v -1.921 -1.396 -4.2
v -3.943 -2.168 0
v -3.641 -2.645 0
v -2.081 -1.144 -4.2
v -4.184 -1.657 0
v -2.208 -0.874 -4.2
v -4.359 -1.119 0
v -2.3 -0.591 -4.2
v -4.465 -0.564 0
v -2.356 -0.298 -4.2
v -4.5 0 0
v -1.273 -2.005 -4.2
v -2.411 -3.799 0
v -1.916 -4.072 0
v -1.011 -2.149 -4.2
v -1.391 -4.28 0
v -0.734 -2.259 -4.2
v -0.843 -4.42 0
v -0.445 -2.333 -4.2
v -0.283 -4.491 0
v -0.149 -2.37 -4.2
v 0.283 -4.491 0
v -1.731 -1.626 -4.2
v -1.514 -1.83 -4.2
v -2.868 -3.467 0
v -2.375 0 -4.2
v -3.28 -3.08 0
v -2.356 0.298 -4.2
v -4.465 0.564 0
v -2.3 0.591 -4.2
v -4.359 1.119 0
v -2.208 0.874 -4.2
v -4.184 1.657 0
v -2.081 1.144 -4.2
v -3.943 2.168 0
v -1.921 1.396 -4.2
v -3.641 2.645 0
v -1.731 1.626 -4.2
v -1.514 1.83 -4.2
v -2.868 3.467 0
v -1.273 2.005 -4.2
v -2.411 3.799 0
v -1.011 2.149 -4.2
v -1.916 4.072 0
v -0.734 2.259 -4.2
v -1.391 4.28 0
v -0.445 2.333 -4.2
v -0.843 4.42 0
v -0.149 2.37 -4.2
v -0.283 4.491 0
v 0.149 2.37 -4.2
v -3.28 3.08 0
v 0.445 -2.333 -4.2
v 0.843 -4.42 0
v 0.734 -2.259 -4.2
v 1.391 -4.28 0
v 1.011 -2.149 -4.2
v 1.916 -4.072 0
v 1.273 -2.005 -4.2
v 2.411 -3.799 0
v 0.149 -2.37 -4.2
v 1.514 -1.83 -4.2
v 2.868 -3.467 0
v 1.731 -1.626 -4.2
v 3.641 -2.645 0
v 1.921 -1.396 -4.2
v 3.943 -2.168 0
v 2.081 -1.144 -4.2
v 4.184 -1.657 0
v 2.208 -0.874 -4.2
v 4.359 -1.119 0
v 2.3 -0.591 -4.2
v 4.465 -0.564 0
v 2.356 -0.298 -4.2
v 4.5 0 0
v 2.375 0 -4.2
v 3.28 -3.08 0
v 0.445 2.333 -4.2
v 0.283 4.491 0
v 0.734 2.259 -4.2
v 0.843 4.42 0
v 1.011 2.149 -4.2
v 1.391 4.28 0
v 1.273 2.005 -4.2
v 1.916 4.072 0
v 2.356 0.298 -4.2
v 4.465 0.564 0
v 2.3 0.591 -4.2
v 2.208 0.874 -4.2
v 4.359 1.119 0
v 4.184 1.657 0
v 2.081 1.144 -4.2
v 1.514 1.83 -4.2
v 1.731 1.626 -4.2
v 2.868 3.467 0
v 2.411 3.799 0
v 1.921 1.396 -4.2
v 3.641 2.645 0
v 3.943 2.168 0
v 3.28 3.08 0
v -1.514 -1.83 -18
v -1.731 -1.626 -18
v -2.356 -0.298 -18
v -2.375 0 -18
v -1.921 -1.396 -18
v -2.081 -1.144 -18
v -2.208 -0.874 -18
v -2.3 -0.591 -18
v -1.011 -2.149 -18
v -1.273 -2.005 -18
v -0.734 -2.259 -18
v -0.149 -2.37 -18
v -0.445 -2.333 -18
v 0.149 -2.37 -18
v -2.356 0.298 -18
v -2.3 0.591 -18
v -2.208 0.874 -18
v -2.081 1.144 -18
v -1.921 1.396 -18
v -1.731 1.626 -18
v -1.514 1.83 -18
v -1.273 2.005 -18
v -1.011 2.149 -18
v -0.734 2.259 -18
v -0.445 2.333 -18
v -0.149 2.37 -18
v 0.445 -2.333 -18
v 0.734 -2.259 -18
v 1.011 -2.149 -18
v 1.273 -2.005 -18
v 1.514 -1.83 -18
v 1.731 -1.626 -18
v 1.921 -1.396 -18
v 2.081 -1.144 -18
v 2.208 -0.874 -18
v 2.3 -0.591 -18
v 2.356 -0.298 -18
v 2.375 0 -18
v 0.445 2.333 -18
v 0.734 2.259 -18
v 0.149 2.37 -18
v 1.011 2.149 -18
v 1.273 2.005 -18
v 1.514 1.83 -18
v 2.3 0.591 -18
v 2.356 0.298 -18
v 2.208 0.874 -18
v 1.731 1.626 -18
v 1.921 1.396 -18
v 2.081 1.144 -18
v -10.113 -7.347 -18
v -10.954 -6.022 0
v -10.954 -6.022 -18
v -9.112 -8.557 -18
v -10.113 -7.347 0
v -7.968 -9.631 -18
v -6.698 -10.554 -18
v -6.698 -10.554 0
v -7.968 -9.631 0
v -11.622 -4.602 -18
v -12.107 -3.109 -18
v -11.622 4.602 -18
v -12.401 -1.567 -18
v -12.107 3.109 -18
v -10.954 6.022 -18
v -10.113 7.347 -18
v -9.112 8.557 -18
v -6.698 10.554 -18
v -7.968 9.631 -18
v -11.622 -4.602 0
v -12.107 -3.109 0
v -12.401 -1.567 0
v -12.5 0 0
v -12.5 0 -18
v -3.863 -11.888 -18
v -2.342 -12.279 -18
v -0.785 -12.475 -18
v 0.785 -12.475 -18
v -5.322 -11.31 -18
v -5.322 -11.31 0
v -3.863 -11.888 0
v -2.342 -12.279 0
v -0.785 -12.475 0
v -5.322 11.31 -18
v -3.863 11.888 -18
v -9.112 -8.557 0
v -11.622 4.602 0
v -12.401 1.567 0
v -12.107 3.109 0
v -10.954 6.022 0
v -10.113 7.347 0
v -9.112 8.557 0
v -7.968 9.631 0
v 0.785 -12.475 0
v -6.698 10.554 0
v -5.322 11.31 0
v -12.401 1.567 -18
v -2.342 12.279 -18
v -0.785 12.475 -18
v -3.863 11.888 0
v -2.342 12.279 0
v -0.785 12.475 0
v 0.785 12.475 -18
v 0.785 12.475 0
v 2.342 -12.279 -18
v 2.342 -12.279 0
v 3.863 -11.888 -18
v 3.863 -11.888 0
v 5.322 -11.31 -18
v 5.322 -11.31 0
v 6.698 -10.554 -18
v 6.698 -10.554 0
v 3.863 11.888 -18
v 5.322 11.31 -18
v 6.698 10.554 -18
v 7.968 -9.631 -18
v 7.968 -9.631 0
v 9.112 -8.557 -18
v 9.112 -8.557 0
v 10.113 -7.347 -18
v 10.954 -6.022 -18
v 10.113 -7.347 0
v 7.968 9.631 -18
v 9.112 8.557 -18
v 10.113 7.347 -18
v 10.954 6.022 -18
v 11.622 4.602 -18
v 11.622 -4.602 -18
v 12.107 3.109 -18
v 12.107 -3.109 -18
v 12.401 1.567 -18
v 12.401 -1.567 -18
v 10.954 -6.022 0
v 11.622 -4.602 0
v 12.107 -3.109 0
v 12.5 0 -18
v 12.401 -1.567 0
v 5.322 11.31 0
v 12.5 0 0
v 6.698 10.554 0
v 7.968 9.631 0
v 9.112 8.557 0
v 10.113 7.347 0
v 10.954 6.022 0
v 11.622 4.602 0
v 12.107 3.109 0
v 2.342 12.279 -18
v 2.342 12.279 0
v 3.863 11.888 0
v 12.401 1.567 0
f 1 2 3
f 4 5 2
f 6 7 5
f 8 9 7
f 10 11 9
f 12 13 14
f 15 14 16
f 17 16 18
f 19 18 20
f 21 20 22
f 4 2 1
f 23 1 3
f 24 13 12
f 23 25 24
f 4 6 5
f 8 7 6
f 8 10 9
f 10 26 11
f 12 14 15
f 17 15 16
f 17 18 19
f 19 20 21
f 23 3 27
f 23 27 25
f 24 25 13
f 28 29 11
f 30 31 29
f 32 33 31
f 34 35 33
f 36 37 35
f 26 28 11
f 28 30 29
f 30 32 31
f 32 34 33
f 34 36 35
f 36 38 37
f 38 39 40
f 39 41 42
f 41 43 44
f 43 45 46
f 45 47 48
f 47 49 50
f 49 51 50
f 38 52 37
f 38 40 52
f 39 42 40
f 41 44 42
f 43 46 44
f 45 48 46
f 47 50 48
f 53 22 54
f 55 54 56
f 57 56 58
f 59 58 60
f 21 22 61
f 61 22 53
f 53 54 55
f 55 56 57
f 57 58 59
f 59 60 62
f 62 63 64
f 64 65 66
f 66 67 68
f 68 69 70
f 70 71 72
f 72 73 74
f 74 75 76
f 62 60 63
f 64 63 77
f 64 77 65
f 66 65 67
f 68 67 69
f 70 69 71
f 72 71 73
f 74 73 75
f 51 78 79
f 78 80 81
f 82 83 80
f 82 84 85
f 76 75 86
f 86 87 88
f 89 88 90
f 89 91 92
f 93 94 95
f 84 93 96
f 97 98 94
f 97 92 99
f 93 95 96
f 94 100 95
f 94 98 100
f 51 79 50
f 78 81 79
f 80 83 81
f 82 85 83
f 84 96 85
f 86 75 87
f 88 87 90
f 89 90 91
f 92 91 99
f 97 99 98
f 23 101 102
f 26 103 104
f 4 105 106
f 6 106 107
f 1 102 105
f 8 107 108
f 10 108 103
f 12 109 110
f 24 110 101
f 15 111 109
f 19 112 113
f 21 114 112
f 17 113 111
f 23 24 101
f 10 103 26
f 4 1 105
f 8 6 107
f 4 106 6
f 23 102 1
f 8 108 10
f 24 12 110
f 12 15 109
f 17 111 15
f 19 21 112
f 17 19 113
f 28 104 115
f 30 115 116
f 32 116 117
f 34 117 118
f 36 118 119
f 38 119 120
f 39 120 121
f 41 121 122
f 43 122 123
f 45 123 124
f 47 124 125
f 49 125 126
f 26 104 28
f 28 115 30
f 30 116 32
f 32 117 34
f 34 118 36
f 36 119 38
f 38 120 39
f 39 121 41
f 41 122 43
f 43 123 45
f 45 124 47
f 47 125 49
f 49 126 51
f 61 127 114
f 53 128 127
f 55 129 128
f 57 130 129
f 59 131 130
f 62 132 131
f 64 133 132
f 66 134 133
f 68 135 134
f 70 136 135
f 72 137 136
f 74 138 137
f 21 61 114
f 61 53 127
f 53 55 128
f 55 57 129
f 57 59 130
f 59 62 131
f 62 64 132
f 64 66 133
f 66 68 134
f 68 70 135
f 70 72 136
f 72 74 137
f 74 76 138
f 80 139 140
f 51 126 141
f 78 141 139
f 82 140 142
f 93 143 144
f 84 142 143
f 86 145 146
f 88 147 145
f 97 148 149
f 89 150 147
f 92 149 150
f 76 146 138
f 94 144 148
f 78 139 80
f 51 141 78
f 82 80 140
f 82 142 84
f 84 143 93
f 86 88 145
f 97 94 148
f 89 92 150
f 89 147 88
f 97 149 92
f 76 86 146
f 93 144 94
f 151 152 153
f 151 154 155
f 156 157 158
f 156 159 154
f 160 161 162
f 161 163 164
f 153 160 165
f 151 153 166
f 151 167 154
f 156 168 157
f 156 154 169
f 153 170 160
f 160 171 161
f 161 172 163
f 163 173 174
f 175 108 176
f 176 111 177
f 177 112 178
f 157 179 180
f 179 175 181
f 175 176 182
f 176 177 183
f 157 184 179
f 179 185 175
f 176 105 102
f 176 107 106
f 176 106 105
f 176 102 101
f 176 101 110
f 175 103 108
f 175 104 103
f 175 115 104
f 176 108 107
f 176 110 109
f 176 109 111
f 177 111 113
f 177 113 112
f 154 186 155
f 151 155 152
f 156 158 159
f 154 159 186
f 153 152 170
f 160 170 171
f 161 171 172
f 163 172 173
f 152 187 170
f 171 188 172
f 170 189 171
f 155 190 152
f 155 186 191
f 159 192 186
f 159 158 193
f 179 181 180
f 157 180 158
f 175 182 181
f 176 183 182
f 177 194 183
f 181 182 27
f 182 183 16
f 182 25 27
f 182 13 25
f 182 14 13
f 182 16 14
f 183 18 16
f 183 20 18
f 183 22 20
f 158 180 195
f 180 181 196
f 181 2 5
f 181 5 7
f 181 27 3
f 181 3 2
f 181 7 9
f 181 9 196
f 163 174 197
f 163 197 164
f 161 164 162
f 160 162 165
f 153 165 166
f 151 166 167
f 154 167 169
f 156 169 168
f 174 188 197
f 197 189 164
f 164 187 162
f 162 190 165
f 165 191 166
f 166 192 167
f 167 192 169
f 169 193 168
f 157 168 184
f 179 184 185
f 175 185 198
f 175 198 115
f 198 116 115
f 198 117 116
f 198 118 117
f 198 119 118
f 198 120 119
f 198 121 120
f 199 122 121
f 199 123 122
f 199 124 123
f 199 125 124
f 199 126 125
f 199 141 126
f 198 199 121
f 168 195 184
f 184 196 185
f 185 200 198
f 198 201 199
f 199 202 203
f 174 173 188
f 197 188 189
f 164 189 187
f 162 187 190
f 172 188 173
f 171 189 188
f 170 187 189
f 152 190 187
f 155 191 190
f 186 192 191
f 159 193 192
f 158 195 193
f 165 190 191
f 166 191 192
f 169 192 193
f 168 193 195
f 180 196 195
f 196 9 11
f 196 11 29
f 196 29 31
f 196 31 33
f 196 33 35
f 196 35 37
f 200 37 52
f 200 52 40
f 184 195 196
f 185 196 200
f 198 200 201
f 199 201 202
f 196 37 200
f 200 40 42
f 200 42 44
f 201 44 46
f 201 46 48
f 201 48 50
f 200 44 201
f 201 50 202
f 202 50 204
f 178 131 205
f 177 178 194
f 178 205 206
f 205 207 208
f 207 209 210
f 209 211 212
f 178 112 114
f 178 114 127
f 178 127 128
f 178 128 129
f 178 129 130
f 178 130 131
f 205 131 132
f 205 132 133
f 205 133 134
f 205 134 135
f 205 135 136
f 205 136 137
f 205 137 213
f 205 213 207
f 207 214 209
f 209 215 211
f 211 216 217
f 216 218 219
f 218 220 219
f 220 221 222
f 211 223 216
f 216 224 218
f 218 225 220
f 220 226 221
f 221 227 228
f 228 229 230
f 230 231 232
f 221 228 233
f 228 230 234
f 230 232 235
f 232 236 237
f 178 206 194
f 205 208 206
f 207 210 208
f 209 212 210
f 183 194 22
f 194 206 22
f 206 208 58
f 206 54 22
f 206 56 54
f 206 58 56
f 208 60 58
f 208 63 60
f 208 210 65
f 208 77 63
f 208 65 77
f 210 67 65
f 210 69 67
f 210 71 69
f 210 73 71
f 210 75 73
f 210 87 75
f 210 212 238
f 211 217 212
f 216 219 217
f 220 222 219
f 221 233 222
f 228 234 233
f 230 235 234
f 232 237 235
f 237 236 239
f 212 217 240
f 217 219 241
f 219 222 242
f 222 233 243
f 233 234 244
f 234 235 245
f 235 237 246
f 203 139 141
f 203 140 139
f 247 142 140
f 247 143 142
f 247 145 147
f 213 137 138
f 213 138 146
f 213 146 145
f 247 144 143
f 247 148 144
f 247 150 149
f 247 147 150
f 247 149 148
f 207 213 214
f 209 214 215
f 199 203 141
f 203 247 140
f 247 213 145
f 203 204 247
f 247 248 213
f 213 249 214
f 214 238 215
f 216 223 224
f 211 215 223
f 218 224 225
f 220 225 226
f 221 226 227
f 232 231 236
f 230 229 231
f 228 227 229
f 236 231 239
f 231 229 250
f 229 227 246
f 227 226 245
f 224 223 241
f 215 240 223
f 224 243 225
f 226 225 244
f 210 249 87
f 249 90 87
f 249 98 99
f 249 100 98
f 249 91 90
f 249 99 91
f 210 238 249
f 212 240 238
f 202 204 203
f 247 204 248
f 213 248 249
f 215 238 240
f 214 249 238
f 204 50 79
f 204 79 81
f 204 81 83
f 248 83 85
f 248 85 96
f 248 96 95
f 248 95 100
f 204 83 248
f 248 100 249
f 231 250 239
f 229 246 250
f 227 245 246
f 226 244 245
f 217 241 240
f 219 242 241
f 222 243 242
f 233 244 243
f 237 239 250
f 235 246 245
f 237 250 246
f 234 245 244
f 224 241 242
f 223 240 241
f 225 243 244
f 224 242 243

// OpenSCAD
$fn = 50;


difference() {
	union() {
		translate(v = [0, 0, -18.0000000000]) {
			cylinder(h = 18, r = 12.5000000000);
		}
	}
	union() {
		translate(v = [0, 0, 0]) {
			rotate(a = [0, 0, 0]) {
				difference() {
					union() {
						translate(v = [0, 0, -21.0000000000]) {
							cylinder(h = 21, r = 2.2500000000);
						}
						translate(v = [0, 0, -4.2000000000]) {
							cylinder(h = 4.2000000000, r1 = 2.3750000000, r2 = 4.5000000000);
						}
						translate(v = [0, 0, -21.0000000000]) {
							cylinder(h = 21, r = 2.3750000000);
						}
						translate(v = [0, 0, -21.0000000000]) {
							cylinder(h = 21, r = 2.2500000000);
						}
					}
					union();
				}
			}
		}
	}
}
